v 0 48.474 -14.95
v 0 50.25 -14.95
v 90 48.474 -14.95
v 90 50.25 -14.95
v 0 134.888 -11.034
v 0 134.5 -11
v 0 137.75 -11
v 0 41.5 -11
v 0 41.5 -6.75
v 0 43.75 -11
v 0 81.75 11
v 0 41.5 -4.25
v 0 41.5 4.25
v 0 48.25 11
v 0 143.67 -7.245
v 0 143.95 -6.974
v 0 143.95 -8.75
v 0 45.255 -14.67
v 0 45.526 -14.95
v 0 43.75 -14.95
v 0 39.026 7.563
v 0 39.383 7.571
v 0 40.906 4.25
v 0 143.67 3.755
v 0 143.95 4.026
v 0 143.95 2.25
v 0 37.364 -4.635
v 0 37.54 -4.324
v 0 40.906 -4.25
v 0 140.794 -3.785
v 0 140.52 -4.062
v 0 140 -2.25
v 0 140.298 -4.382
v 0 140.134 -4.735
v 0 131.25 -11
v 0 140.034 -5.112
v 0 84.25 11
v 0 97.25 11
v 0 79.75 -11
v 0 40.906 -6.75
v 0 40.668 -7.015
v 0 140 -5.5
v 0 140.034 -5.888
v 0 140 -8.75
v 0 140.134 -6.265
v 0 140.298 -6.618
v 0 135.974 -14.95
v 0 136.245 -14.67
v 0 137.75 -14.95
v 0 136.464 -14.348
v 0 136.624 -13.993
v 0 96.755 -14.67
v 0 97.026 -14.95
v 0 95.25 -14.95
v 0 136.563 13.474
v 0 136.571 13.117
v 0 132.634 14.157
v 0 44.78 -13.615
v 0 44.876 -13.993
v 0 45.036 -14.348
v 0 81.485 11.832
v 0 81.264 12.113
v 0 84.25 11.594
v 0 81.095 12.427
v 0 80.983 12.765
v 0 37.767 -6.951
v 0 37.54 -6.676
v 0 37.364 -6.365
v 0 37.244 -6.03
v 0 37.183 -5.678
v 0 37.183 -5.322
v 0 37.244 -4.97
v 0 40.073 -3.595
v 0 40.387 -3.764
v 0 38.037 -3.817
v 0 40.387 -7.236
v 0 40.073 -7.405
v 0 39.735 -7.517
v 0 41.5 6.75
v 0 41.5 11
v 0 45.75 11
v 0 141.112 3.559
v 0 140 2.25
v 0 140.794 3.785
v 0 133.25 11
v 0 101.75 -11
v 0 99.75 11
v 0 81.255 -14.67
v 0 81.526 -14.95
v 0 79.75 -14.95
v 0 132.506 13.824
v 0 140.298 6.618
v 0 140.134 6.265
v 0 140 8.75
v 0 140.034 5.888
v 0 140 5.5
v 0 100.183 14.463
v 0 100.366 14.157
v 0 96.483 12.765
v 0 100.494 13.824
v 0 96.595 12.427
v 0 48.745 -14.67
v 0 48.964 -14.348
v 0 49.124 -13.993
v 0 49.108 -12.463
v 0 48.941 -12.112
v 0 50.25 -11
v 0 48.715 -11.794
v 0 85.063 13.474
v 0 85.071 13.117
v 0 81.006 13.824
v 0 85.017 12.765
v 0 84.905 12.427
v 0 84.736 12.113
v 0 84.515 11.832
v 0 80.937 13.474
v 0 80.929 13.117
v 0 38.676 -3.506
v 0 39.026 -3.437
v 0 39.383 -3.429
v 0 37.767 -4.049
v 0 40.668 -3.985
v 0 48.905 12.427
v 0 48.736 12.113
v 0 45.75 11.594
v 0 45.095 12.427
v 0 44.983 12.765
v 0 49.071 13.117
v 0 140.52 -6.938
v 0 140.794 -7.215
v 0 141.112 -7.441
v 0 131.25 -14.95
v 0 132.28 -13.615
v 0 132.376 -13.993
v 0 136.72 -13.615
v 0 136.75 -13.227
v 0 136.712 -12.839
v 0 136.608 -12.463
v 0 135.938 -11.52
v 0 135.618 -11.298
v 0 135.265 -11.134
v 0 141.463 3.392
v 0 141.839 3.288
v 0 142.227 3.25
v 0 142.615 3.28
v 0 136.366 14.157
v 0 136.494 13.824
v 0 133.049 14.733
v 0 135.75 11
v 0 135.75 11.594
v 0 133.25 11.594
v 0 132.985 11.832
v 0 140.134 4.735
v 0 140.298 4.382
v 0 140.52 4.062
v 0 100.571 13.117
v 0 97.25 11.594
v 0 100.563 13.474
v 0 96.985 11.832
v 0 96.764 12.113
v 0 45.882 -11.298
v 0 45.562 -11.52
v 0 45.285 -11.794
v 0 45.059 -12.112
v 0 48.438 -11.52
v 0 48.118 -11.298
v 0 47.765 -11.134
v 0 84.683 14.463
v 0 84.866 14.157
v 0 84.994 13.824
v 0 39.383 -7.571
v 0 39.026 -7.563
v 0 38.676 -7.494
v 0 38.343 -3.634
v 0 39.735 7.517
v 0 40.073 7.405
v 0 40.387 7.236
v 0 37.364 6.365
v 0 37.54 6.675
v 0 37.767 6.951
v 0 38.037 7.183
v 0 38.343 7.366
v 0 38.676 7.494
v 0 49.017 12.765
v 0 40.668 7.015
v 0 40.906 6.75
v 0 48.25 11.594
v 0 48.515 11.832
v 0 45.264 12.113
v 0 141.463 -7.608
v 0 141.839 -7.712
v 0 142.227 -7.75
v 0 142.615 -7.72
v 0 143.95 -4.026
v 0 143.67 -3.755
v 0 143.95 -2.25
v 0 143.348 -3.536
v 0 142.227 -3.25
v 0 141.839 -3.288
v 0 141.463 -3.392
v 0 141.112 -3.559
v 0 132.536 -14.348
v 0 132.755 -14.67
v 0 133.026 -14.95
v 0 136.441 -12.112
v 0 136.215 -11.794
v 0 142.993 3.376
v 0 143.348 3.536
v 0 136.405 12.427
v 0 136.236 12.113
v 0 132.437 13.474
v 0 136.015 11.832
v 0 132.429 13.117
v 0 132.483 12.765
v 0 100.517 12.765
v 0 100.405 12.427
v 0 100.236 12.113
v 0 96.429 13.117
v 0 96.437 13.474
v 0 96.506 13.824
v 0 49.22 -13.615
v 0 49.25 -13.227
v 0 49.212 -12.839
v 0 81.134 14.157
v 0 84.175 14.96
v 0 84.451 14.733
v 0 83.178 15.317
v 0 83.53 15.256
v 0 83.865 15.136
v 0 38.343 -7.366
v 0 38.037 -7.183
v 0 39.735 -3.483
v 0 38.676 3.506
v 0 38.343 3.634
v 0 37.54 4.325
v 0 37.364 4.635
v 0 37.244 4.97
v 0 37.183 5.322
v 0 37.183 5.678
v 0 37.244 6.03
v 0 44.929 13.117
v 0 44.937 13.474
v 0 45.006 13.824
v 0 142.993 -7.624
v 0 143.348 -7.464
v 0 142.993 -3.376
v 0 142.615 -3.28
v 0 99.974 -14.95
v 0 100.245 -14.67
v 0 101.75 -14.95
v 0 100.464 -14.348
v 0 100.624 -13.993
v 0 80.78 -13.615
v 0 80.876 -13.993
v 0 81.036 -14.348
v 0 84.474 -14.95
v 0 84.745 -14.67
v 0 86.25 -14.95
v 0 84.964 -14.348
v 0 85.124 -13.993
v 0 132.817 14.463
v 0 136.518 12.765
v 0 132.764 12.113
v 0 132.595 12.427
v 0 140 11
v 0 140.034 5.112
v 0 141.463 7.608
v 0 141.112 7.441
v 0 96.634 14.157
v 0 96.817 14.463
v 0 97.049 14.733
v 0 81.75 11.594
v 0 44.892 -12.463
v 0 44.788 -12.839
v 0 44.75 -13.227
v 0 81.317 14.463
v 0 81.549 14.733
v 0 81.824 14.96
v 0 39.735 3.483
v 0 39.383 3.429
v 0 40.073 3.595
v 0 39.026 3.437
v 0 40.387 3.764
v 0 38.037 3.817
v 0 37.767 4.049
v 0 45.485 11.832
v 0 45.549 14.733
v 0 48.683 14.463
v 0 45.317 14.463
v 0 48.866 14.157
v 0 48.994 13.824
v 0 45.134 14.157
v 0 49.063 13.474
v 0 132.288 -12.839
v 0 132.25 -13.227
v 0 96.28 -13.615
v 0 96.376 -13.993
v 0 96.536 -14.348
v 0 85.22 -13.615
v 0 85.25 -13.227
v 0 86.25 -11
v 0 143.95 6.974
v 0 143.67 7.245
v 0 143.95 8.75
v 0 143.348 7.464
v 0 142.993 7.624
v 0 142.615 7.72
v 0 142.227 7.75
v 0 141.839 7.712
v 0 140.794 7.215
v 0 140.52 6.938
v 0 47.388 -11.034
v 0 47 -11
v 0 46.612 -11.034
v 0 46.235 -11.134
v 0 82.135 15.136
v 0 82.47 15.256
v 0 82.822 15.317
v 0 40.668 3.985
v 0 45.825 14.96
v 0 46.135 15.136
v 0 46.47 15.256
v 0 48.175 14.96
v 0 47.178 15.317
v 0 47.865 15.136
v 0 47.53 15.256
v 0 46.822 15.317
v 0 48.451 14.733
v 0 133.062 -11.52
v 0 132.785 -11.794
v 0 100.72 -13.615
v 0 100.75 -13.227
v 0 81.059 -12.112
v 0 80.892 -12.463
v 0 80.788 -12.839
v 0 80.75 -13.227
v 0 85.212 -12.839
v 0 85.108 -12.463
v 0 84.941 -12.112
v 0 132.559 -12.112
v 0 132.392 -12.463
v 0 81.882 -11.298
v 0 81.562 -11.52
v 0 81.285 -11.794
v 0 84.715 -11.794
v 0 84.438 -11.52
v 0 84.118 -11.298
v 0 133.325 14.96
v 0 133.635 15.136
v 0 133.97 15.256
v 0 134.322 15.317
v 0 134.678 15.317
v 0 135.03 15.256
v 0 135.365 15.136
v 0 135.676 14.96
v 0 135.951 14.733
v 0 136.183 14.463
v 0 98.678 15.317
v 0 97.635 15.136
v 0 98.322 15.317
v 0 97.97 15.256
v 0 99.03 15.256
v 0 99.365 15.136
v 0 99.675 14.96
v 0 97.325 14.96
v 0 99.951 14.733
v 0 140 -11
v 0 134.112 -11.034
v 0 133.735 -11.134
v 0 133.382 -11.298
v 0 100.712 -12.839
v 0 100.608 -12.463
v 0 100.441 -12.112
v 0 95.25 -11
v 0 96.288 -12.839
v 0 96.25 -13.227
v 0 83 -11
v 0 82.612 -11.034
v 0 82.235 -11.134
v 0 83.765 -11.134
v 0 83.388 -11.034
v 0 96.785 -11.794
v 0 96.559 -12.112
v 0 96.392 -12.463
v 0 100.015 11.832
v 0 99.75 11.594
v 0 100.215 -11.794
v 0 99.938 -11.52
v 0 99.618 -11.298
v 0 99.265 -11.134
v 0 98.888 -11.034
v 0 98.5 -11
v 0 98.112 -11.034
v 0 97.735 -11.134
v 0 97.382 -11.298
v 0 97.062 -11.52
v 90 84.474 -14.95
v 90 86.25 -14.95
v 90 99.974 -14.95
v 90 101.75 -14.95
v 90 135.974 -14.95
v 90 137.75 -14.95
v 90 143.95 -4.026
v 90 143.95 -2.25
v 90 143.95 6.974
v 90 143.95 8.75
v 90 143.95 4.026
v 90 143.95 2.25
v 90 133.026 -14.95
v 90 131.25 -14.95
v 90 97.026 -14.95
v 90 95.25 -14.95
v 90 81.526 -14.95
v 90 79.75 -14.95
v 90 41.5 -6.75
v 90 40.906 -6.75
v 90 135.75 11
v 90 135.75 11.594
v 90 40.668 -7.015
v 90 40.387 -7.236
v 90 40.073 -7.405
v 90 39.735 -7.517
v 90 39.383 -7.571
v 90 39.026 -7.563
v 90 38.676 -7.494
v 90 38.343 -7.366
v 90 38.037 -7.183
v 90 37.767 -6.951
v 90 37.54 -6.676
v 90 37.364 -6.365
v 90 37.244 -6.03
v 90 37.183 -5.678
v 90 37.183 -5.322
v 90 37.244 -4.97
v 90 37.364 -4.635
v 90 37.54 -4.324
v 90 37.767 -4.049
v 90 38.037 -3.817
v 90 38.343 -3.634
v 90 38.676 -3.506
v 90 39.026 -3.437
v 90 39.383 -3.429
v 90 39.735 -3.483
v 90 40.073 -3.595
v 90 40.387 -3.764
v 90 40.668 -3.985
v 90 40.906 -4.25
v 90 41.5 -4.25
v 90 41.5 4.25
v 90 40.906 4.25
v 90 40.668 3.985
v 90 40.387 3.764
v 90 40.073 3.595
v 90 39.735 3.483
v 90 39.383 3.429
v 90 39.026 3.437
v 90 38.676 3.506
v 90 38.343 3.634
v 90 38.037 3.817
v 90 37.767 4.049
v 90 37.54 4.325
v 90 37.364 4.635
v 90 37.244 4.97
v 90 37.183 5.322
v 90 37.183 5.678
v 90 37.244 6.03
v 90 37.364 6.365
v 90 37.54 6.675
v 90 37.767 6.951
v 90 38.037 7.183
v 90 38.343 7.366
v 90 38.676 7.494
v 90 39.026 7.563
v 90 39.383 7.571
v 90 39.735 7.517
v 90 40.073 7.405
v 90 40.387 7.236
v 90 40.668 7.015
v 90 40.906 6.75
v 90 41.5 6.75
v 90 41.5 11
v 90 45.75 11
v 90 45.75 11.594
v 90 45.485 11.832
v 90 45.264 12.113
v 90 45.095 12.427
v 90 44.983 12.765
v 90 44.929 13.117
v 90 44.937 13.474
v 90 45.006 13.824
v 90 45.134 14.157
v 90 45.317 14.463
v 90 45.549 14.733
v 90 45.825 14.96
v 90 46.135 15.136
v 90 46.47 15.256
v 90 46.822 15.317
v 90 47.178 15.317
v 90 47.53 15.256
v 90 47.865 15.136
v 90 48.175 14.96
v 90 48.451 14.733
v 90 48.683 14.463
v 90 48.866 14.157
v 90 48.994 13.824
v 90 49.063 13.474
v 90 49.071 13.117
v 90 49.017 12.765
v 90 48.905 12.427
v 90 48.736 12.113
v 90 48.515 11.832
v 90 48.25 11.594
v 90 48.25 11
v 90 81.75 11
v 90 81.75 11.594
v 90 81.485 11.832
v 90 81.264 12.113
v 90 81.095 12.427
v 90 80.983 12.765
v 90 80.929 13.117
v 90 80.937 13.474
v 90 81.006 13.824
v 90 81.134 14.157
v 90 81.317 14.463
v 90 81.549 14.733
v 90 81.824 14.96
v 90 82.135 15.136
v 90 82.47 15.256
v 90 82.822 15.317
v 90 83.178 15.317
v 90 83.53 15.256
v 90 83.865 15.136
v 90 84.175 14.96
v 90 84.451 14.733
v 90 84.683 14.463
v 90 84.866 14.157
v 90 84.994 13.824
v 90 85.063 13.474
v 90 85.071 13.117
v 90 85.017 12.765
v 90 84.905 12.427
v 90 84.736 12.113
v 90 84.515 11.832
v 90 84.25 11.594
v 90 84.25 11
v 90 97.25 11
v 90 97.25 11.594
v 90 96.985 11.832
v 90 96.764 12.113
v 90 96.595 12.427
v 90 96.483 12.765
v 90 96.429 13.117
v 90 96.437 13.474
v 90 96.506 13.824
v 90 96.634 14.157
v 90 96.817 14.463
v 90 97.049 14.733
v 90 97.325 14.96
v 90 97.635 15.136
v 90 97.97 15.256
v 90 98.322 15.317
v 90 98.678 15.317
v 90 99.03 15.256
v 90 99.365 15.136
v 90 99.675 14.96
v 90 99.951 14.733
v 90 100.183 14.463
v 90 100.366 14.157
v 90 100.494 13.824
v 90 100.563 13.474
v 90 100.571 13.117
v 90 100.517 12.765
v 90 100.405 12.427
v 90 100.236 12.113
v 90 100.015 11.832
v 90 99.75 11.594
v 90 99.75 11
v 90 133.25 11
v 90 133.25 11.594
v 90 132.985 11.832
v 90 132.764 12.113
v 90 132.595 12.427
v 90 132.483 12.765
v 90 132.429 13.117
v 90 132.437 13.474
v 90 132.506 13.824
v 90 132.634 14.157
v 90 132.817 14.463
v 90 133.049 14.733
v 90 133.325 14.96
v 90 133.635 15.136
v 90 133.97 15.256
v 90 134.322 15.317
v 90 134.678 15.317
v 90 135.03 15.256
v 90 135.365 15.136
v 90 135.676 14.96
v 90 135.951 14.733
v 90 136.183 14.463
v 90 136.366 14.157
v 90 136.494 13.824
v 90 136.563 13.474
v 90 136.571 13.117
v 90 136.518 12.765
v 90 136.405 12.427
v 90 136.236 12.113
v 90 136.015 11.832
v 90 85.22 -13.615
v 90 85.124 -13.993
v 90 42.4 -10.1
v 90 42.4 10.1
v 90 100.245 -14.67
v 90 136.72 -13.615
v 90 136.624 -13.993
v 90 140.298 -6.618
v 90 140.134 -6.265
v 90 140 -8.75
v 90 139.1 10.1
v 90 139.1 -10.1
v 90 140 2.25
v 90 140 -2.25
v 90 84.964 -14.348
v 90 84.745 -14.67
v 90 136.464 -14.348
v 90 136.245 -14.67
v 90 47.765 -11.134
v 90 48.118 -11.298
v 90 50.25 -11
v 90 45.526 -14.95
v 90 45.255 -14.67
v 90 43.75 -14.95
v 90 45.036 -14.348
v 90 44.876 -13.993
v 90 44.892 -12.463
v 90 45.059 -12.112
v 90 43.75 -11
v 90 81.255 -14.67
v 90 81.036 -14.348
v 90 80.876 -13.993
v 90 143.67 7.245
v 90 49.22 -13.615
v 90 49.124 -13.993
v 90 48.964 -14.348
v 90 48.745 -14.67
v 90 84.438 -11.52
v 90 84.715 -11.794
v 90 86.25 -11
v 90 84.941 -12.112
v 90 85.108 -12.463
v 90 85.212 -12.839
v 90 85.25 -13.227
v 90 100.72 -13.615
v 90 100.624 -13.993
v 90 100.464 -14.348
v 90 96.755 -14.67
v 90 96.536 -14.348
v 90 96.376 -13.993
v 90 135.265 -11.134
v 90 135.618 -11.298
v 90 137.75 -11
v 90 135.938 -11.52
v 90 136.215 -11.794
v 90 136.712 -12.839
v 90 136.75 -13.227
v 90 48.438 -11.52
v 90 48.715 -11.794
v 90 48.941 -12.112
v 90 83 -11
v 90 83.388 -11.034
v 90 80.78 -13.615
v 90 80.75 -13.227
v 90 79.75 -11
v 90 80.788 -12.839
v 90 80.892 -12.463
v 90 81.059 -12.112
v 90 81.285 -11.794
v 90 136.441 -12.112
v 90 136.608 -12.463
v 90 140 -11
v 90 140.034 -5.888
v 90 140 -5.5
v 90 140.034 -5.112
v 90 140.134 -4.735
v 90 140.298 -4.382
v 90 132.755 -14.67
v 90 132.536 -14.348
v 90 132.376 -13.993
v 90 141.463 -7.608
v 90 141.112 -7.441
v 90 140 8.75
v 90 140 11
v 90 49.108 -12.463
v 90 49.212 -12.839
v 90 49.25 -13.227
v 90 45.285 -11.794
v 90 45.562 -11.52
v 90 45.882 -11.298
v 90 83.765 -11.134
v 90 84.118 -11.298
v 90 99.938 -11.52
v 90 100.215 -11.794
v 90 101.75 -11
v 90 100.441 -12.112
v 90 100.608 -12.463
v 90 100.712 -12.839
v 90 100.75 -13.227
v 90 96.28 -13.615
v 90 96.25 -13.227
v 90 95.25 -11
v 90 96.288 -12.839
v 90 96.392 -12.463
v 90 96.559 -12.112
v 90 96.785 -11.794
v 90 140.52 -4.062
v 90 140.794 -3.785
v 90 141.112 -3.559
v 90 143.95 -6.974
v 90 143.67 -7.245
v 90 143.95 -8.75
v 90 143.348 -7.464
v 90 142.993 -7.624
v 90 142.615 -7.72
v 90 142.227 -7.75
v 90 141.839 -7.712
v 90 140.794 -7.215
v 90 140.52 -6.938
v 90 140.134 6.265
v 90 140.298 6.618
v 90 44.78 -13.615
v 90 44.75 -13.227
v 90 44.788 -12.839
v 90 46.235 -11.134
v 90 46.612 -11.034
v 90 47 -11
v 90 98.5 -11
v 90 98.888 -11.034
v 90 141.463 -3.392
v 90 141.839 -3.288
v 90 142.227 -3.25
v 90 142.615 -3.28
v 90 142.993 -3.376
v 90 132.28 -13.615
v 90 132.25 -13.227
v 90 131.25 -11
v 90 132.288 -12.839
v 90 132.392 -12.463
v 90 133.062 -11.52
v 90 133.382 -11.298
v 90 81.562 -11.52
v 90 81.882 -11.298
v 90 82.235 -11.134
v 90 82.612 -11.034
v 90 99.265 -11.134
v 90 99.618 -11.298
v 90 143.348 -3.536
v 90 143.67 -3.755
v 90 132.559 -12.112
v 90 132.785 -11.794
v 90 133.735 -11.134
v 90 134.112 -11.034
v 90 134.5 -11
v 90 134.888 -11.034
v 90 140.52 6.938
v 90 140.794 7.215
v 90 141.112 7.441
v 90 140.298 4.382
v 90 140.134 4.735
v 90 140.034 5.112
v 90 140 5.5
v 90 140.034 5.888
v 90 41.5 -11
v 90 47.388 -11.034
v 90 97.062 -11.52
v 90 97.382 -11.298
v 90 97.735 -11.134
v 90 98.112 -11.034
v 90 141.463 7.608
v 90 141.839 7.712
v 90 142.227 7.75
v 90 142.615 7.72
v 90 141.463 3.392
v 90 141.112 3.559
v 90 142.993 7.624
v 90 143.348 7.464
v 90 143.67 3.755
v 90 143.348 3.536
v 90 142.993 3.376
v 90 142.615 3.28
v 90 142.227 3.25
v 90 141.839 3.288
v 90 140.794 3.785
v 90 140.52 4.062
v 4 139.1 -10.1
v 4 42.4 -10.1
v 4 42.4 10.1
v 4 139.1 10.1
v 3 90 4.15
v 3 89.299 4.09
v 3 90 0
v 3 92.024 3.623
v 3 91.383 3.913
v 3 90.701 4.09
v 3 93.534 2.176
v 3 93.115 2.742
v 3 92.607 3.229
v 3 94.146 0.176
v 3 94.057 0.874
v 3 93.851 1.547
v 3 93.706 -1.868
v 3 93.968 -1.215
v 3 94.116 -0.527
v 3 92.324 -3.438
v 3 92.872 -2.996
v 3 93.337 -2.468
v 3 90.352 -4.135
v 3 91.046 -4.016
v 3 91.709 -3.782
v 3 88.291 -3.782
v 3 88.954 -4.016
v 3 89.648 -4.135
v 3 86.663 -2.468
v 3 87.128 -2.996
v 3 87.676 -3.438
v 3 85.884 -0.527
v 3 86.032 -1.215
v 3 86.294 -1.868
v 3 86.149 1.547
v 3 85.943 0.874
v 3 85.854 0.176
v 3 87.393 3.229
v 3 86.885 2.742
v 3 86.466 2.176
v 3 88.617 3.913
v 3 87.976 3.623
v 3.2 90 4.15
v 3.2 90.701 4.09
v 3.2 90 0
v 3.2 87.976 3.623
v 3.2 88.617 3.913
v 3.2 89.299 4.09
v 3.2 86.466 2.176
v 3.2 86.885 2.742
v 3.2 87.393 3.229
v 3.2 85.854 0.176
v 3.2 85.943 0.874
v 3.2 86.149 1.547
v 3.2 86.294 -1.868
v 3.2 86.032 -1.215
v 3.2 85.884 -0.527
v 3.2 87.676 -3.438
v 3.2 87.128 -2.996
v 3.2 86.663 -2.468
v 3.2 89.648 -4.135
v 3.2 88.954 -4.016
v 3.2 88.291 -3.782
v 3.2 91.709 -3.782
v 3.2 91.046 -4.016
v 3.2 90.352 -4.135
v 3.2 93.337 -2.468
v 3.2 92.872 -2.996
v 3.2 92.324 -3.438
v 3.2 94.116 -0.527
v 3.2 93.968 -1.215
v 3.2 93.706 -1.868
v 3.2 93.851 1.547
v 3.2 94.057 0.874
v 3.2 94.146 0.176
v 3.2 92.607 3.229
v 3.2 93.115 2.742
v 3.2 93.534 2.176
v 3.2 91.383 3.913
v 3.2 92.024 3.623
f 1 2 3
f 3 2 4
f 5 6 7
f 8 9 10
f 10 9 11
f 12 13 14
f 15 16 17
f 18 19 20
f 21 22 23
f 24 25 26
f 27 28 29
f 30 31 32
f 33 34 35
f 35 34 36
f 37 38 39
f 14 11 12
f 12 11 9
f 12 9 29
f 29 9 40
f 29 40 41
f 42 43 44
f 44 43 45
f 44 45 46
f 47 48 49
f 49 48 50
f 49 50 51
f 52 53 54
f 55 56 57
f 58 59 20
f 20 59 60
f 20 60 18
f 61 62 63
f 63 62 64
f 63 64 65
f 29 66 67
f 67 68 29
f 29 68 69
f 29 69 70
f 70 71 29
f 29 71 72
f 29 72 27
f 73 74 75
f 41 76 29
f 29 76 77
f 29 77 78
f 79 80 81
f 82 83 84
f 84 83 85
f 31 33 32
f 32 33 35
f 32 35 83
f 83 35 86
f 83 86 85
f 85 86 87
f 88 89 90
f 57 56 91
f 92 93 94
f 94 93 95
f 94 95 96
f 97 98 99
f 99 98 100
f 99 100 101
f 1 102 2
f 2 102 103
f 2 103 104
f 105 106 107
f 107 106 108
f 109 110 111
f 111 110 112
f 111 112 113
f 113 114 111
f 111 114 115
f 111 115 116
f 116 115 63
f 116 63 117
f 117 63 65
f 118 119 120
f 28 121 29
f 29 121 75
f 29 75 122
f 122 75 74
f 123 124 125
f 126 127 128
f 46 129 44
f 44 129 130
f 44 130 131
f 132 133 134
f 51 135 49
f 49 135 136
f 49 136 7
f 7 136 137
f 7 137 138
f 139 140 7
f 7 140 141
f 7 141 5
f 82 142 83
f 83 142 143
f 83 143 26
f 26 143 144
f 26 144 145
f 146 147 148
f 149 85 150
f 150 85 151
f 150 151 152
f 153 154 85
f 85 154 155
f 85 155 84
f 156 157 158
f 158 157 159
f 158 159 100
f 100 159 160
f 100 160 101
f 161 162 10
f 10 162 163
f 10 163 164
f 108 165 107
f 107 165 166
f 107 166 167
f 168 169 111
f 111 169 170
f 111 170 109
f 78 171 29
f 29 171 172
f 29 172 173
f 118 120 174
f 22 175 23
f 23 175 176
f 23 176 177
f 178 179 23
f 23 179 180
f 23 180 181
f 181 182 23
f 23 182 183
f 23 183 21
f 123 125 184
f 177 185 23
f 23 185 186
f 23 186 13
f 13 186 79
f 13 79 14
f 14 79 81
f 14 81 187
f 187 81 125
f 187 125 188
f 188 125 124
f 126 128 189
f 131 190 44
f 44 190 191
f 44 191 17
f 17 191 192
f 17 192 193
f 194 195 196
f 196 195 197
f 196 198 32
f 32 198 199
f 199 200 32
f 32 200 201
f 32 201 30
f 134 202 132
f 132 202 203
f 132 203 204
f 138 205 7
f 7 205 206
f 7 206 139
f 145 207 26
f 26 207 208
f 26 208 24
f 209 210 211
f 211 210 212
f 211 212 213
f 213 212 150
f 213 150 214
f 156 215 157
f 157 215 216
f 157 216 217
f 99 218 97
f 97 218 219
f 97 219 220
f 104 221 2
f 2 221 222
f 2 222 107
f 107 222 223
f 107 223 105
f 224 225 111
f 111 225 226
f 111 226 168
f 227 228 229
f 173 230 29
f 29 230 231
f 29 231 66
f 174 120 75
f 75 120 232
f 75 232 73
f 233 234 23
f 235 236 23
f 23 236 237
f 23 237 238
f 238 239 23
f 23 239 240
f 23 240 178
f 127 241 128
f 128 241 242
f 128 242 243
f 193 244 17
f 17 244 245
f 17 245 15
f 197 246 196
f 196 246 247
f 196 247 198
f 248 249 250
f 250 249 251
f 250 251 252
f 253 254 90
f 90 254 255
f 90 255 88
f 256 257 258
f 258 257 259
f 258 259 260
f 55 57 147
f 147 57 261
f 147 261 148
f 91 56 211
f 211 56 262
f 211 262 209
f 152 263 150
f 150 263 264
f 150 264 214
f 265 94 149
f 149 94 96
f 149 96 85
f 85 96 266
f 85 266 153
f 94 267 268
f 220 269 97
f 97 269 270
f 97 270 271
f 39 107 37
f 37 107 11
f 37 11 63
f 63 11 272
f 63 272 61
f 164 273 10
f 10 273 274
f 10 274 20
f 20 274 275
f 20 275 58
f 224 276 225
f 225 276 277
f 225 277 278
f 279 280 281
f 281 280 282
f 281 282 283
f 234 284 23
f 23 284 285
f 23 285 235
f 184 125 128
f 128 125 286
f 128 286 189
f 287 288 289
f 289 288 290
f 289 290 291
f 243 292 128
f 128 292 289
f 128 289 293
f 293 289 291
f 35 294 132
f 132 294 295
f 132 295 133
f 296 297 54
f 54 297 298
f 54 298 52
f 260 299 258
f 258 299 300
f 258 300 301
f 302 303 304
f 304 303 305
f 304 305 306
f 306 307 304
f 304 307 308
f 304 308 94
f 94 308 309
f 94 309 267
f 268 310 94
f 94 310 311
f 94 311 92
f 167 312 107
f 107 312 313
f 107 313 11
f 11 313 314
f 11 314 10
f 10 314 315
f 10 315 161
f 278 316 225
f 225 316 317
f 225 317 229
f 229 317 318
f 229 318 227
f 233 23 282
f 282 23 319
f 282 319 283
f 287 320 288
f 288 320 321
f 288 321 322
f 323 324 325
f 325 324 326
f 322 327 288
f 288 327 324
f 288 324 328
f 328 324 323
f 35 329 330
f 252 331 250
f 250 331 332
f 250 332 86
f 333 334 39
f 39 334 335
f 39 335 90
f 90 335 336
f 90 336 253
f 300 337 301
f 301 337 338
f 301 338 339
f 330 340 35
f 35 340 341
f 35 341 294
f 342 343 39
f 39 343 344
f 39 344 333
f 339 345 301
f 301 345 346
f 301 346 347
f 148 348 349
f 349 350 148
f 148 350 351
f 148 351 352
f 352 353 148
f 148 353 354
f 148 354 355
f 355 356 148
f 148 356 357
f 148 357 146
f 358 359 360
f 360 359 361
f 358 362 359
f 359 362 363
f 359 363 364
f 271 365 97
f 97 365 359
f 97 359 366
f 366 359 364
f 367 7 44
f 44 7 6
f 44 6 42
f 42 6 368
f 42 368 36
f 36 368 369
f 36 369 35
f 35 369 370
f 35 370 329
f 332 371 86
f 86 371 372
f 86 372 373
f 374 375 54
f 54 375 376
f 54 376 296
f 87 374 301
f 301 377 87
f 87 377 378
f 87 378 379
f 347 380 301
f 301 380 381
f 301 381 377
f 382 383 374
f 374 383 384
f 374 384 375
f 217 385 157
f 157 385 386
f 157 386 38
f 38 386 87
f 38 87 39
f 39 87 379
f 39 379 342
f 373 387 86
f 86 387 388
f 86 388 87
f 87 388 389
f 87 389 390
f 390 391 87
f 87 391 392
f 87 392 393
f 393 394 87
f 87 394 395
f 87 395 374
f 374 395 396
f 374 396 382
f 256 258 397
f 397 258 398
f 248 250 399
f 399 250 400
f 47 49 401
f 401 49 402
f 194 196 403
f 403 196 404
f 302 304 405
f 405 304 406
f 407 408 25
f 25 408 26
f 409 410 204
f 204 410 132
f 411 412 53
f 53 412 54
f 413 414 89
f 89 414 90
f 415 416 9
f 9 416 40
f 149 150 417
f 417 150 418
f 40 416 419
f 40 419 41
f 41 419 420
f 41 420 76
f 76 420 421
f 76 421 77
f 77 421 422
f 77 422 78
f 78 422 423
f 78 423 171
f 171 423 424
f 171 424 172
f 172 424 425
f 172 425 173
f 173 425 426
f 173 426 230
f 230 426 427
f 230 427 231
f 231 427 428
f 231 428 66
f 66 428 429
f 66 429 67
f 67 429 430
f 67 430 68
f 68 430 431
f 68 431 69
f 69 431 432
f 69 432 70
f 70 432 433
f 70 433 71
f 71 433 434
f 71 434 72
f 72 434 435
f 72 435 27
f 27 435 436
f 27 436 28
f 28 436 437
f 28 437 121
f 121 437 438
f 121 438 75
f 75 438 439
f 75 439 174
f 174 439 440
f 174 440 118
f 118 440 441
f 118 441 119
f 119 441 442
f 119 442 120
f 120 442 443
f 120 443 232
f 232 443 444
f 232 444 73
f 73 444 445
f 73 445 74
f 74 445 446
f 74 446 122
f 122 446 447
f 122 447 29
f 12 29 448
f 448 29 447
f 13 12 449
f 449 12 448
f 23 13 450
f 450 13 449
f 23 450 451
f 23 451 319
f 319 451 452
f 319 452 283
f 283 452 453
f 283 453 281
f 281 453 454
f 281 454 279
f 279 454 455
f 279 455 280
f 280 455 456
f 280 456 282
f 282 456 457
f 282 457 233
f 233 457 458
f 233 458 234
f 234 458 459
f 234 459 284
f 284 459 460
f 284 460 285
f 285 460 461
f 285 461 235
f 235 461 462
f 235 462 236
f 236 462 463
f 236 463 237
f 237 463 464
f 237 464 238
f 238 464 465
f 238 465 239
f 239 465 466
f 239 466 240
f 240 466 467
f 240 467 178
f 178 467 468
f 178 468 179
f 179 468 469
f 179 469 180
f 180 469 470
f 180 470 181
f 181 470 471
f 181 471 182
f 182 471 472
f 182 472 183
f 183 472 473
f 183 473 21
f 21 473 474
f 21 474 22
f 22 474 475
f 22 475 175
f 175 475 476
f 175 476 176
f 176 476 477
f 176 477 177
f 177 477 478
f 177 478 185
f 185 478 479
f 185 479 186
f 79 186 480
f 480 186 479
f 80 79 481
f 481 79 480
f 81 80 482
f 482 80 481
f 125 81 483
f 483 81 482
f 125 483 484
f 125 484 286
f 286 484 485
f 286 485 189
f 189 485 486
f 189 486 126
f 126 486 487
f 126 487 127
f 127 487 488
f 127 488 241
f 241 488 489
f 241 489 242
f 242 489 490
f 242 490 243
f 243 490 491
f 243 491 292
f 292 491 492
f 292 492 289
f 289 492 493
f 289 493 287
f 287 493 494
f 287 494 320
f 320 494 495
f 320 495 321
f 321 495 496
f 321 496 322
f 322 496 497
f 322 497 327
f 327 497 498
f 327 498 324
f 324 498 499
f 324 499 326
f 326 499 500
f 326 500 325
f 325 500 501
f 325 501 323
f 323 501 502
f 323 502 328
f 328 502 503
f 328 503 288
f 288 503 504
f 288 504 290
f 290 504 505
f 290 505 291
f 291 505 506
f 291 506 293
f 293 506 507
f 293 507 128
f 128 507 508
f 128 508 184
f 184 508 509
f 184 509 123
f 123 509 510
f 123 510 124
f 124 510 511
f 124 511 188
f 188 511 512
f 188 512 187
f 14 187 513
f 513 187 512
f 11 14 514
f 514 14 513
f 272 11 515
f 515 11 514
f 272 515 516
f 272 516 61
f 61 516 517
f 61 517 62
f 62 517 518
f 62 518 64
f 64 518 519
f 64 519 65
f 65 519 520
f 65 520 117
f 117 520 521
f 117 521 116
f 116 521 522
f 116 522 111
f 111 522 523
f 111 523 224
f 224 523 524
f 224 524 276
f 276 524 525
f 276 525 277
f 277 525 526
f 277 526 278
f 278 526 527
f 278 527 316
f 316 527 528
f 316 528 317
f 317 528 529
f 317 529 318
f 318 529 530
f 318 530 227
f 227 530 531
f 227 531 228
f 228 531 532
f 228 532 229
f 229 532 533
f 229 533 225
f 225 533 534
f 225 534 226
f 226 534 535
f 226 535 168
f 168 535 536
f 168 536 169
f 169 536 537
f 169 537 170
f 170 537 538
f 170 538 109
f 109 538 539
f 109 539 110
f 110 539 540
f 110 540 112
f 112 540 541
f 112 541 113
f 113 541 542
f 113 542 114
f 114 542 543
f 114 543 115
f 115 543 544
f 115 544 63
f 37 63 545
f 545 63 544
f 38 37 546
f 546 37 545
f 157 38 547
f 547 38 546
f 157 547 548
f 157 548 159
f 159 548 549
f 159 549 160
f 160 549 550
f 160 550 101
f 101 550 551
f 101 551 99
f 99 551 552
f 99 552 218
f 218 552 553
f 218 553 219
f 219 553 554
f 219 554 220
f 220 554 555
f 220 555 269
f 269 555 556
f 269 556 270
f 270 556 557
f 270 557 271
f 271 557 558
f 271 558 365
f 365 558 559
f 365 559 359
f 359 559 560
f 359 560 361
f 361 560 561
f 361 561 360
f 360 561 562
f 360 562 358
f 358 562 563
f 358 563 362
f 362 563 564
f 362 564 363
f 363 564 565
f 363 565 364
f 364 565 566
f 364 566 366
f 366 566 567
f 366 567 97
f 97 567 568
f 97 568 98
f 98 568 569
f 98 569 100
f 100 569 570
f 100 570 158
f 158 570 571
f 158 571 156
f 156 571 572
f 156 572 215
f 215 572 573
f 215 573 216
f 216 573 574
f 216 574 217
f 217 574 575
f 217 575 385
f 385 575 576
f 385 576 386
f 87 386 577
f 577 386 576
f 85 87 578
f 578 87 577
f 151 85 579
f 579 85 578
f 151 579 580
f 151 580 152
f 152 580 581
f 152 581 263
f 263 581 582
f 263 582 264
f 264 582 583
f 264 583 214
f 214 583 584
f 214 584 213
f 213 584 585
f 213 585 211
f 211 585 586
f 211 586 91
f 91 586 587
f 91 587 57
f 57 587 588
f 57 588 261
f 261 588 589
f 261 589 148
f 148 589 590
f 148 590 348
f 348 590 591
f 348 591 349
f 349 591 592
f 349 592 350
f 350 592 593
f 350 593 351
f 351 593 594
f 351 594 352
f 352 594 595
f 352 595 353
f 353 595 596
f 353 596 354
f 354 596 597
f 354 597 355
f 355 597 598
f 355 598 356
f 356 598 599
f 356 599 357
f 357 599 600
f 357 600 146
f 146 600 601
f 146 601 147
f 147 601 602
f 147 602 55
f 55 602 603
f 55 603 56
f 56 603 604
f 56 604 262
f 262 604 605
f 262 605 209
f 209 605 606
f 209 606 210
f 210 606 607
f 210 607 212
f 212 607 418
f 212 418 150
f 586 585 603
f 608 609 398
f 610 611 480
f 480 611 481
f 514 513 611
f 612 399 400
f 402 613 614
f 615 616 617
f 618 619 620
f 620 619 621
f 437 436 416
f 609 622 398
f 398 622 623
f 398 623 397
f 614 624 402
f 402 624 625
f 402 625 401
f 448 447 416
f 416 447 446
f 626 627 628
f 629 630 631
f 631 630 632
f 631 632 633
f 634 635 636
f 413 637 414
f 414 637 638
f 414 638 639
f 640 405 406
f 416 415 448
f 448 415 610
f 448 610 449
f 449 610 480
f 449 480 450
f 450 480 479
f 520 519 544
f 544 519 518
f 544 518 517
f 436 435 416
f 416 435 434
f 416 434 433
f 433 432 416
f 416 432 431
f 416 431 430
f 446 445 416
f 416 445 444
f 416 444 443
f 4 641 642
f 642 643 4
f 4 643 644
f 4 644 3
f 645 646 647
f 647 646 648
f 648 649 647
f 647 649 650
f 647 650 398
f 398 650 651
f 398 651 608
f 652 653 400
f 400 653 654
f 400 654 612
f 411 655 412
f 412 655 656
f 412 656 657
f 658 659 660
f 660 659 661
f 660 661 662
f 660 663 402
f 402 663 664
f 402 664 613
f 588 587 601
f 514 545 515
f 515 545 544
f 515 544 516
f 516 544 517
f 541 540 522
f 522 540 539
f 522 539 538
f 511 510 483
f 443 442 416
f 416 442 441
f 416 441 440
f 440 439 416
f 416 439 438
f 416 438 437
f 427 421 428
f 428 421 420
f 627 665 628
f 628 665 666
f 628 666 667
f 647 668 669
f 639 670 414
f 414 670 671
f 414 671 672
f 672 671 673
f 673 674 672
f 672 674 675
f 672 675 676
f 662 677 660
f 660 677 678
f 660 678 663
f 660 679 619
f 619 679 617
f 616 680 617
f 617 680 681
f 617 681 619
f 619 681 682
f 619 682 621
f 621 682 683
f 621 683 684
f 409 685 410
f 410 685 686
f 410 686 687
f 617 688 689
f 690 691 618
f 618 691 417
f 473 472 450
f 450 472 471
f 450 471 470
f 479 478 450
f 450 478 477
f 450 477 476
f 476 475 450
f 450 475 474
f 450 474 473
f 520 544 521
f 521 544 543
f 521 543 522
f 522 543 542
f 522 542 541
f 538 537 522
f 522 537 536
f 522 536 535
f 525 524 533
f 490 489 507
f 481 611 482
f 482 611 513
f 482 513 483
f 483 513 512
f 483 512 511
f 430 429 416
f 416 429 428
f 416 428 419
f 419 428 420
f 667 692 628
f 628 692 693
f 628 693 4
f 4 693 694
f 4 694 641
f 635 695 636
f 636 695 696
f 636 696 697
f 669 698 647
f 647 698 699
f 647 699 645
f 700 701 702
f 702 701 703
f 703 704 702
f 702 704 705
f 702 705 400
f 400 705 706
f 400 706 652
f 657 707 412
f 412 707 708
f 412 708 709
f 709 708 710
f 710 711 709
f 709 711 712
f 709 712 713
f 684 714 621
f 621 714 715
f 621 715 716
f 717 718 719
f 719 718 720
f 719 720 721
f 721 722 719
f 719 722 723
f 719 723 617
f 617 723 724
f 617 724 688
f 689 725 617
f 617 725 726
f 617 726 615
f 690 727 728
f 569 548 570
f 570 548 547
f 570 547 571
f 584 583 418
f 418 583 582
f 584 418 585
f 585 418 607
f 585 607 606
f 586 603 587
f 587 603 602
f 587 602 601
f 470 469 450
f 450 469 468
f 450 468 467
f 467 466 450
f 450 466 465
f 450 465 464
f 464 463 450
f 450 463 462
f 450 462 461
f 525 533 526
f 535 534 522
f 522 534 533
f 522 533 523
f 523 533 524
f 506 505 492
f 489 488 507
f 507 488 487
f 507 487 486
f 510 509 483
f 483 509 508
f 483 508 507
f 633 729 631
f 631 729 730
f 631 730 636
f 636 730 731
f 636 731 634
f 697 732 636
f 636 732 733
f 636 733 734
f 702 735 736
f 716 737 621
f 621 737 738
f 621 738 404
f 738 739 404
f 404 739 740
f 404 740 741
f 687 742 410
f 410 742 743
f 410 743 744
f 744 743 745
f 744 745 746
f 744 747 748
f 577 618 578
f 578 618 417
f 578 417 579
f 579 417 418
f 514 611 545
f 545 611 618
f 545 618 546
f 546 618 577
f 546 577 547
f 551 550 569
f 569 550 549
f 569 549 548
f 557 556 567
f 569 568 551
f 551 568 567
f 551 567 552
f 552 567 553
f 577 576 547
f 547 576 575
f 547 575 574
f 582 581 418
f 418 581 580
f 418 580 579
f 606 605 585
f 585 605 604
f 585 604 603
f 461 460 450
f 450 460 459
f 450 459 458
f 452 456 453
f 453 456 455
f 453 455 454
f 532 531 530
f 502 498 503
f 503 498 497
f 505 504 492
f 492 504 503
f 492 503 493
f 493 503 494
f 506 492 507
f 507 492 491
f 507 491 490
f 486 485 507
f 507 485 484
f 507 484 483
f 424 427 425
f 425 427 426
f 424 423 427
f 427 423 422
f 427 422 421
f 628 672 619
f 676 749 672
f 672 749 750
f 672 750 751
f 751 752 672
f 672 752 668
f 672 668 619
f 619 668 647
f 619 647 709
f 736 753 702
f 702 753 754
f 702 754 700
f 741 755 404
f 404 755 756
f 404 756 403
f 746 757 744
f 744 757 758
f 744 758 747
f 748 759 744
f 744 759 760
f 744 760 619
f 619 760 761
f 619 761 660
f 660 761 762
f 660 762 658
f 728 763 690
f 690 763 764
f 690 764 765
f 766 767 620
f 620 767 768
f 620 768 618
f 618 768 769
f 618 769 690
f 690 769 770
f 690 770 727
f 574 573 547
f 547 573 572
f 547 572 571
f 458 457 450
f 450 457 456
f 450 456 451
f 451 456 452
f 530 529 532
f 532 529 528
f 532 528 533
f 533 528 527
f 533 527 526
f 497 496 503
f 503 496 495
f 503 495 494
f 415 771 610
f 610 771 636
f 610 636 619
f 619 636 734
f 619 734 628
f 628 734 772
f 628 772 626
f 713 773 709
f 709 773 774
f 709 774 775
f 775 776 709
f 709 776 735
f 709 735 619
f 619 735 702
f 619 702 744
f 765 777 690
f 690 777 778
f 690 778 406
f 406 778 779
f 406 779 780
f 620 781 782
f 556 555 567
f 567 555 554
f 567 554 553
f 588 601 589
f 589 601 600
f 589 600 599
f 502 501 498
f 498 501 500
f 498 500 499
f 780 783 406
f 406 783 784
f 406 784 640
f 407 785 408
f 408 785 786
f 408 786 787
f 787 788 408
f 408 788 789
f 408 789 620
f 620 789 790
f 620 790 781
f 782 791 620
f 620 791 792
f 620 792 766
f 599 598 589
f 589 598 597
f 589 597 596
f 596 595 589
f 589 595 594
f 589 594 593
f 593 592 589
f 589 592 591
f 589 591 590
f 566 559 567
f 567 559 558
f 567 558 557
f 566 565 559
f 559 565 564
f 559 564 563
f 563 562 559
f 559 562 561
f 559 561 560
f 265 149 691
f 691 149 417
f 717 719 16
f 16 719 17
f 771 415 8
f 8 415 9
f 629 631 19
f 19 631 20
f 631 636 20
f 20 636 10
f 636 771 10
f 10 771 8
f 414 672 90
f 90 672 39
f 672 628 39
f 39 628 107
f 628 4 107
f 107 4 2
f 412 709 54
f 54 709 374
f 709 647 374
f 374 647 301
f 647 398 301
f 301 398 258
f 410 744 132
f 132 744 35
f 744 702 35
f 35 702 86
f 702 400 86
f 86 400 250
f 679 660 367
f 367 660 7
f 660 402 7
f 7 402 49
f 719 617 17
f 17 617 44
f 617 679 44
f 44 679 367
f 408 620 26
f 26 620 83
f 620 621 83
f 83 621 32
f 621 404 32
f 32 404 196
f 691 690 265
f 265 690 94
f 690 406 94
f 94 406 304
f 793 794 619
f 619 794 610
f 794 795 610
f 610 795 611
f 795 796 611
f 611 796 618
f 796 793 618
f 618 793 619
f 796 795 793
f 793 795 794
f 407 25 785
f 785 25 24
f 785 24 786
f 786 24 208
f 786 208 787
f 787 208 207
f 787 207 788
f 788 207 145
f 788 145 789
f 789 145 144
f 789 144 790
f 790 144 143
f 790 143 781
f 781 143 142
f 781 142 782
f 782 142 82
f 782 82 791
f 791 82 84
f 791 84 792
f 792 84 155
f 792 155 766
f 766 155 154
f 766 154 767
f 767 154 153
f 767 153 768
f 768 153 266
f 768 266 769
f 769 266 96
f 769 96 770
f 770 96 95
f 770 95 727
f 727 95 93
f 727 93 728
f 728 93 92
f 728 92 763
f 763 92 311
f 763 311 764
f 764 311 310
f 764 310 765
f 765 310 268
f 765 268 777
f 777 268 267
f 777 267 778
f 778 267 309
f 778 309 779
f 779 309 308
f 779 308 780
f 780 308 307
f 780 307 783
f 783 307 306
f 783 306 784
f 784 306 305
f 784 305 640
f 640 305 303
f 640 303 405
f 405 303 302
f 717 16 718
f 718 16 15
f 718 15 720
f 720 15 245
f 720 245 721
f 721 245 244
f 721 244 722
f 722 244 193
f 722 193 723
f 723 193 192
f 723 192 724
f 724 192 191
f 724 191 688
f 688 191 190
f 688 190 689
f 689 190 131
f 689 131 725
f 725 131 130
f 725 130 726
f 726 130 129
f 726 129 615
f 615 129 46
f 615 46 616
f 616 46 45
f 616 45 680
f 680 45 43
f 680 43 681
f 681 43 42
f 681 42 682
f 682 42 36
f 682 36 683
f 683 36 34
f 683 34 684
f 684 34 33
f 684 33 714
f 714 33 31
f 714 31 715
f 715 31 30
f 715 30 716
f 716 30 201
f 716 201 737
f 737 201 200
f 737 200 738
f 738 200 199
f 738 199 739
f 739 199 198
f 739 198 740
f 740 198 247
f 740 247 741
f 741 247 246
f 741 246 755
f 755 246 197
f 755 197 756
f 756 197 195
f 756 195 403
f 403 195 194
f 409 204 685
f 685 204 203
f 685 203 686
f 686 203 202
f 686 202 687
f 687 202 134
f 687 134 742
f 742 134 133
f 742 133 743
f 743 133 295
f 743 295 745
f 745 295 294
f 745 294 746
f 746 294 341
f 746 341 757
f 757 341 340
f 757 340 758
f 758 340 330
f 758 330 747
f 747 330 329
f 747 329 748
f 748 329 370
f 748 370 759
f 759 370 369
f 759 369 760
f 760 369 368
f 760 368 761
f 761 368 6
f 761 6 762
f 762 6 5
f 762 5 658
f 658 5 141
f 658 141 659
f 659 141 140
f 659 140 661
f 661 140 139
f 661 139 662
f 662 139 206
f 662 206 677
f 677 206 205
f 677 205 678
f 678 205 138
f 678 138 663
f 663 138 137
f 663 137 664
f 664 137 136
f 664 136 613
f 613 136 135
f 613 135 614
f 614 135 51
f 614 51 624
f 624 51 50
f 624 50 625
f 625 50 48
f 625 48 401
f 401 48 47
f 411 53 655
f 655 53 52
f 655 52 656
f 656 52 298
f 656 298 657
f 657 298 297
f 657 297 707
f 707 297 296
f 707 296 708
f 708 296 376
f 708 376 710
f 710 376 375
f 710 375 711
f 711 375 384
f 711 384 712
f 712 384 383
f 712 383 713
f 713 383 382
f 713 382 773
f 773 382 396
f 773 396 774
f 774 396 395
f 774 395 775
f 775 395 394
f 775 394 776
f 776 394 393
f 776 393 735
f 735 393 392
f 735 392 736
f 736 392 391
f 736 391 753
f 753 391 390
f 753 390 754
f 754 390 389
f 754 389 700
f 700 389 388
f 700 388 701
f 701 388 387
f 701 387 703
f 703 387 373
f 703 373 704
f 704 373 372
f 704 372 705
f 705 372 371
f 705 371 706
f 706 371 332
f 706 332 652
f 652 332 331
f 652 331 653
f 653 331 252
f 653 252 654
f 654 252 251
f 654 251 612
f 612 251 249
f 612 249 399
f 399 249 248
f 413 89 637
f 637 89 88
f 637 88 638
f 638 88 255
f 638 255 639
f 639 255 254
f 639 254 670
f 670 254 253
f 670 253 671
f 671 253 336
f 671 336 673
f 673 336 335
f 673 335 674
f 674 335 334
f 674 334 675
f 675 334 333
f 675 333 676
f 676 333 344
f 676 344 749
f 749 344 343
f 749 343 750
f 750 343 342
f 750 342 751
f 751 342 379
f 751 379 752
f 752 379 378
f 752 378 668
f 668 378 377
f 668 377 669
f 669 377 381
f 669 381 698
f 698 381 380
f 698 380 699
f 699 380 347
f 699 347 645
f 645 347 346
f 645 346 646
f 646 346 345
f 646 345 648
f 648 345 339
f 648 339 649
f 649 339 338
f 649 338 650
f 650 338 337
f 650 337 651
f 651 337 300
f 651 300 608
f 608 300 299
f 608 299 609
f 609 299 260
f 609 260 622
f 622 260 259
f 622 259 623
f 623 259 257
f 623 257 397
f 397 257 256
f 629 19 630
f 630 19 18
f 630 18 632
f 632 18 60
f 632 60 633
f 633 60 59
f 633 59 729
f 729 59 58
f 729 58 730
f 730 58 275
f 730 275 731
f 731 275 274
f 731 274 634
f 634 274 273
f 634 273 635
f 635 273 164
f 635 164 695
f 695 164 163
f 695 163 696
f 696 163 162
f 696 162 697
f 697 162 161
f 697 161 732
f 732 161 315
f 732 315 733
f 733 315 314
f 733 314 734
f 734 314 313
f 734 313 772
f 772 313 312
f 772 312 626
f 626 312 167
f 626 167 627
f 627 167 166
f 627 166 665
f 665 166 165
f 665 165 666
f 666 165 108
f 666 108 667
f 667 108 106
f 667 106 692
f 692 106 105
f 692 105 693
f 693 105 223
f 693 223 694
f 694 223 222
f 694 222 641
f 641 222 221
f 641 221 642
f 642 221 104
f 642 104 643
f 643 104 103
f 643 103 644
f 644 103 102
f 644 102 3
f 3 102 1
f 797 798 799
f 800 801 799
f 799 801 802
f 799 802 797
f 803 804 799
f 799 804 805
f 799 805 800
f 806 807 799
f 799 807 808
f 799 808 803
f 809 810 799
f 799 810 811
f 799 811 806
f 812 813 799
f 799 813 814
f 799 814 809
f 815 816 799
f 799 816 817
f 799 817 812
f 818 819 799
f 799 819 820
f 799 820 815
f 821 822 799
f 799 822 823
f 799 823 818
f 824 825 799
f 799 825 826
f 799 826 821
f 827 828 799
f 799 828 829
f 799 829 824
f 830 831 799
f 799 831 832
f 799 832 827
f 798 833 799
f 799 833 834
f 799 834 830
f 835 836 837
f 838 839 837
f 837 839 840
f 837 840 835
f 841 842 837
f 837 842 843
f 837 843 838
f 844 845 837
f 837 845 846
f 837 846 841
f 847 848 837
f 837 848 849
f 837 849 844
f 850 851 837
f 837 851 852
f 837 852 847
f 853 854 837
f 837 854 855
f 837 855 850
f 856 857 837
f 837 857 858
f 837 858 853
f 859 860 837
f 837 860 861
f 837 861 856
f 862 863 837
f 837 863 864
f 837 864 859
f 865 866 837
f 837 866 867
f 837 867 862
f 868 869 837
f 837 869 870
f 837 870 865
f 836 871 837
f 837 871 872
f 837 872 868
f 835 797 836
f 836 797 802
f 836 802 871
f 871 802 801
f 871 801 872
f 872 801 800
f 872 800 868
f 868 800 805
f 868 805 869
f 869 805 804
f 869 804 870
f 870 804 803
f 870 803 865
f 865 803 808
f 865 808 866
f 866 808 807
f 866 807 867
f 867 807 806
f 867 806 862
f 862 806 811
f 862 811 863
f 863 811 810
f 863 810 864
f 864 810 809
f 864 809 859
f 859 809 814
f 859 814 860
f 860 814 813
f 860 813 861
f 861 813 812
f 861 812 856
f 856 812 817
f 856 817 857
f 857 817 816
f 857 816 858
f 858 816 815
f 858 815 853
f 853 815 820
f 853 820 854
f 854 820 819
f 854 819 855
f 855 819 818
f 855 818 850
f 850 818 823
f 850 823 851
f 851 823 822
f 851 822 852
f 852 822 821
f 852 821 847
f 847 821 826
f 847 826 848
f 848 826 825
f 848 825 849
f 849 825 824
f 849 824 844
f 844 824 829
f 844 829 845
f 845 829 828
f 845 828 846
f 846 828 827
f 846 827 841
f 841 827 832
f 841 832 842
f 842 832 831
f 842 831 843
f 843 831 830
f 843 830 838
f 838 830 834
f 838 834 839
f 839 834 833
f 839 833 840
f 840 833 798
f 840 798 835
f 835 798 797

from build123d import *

# Parameters (mm, degrees)
EXTRUDE_1_DEPTH             = 90
SKETCH_2_W                  = 90
SKETCH_2_H                  = 17.75
EXTRUDE_2_DEPTH             = 8.2
SKETCH_3_W                  = 90
SKETCH_3_H                  = 102.45
EXTRUDE_3_DEPTH             = 8.2
SKETCH_4_W                  = 3.95
SKETCH_4_H                  = 2.25
CUT_EXTRUDE_1_DEPTH         = 171.45954982
SKETCH_5_W                  = 3.95
SKETCH_5_H                  = 29.5
CUT_EXTRUDE_2_DEPTH         = 171.45954982
SKETCH_6_W                  = 3.95
SKETCH_6_H                  = 9
CUT_EXTRUDE_3_DEPTH         = 171.45954982
SKETCH_7_W                  = 3.95
SKETCH_7_H                  = 29.5
CUT_EXTRUDE_4_DEPTH         = 171.45954982
SKETCH_8_W                  = 3.95
SKETCH_8_H                  = 6.2
CUT_EXTRUDE_5_DEPTH         = 171.45954982
SKETCH_9_W                  = 2.25
SKETCH_9_H                  = 3.95
CUT_EXTRUDE_6_DEPTH         = 171.45954982
SKETCH_10_W                 = 4.5
SKETCH_10_H                 = 3.95
CUT_EXTRUDE_7_DEPTH         = 171.45954982
SKETCH_11_W                 = 2.25
SKETCH_11_H                 = 3.95
CUT_EXTRUDE_8_DEPTH         = 171.45954982
SKETCH_12_W                 = 20.2
SKETCH_12_H                 = 96.7
CUT_EXTRUDE_9_DEPTH         = 86
HOLE_WIZARD_8_3_8_3_1_D     = 8.3
HOLE_WIZARD_8_3_8_3_1_DEPTH = 3.2
HOLE_WIZARD_4_5_4_5_1_D     = 4.5
HOLE_WIZARD_2_5_2_5_1_D     = 2.5
SKETCH_19_R                 = 4.5030807
EXTRUDE_4_DEPTH             = 3
SKETCH_20_R                 = 1.649948342
SKETCH_20_R_2               = 1.660581376
SKETCH_20_R_3               = 1.430745594
SKETCH_20_R_4               = 1.573250385
SKETCH_20_R_5               = 1.502029841
SKETCH_20_R_6               = 1.53795619
EXTRUDE_5_DEPTH             = 90


with BuildPart() as part:
    # Эскиз1 → Бобышка-Вытянуть1 (new body)
    with BuildSketch(Plane(origin=(90, 0, 0), x_dir=(0, 0, -1), z_dir=(1, 0, 0))):
        with BuildLine():
            Line((6.75, 40.906238208), (6.75, 135.75))
            Line((6.75, 135.75), (-11.593761792, 135.75))
            ThreePointArc((-11.593761792, 135.75), (-15.325, 134.5), (-11.593761793, 133.25))
            Line((-11.593761793, 133.25), (-11, 133.25))
            Line((-11, 133.25), (-11, 99.75))
            Line((-11, 99.75), (-11.593761792, 99.75))
            ThreePointArc((-11.593761792, 99.75), (-15.325, 98.5), (-11.593761792, 97.25))
            Line((-11.593761792, 97.25), (-11, 97.25))
            Line((-11, 97.25), (-11, 84.25))
            Line((-11, 84.25), (-11.593761792, 84.25))
            ThreePointArc((-11.593761792, 84.25), (-15.325, 83), (-11.593761792, 81.75))
            Line((-11.593761792, 81.75), (-11, 81.75))
            Line((-11, 81.75), (-11, 48.25))
            Line((-11, 48.25), (-11.593761792, 48.25))
            ThreePointArc((-11.593761792, 48.25), (-15.325, 47), (-11.593761792, 45.75))
            Line((-11.593761792, 45.75), (-11, 45.75))
            Line((-11, 45.75), (-11, 41.5))
            Line((-11, 41.5), (-6.75, 41.5))
            Line((-6.75, 41.5), (-6.75, 40.906238208))
            ThreePointArc((-6.75, 40.906238208), (-5.5, 37.175), (-4.25, 40.906238208))
            Line((-4.25, 40.906238208), (-4.25, 41.5))
            Line((-4.25, 41.5), (4.25, 41.5))
            Line((4.25, 41.5), (4.25, 40.906238208))
            ThreePointArc((4.25, 40.906238208), (5.5, 37.175), (6.75, 40.906238208))
        make_face()
    extrude(amount=-EXTRUDE_1_DEPTH)

    # Эскиз2 → Бобышка-Вытянуть2 (add)
    with BuildSketch(Plane(origin=(0, 135.75, 0), x_dir=(-1, 0, 0), z_dir=(0, 1, 0))):
        with Locations((-45, 2.125)):
            Rectangle(SKETCH_2_W, SKETCH_2_H)
    extrude(amount=EXTRUDE_2_DEPTH)

    # Эскиз3 → Бобышка-Вытянуть3 (add)
    with BuildSketch(Plane(origin=(0, 0, -6.75), x_dir=(-1, 0, 0), z_dir=(0, 0, -1))):
        with Locations((-45, 92.725)):
            Rectangle(SKETCH_3_W, SKETCH_3_H)
    extrude(amount=EXTRUDE_3_DEPTH)

    # Эскиз4 → Вырез-Вытянуть1 (cut, through all)
    with BuildSketch(Plane.ZY):
        with Locations((-12.975, 42.625)):
            Rectangle(SKETCH_4_W, SKETCH_4_H)
    extrude(amount=-CUT_EXTRUDE_1_DEPTH, mode=Mode.SUBTRACT)

    # Эскиз5 → Вырез-Вытянуть2 (cut, through all)
    with BuildSketch(Plane.ZY):
        with Locations((-12.975, 65)):
            Rectangle(SKETCH_5_W, SKETCH_5_H)
    extrude(amount=-CUT_EXTRUDE_2_DEPTH, mode=Mode.SUBTRACT)

    # Эскиз6 → Вырез-Вытянуть3 (cut, through all)
    with BuildSketch(Plane.ZY):
        with Locations((-12.975, 90.75)):
            Rectangle(SKETCH_6_W, SKETCH_6_H)
    extrude(amount=-CUT_EXTRUDE_3_DEPTH, mode=Mode.SUBTRACT)

    # Эскиз7 → Вырез-Вытянуть4 (cut, through all)
    with BuildSketch(Plane.ZY):
        with Locations((-12.975, 116.5)):
            Rectangle(SKETCH_7_W, SKETCH_7_H)
    extrude(amount=-CUT_EXTRUDE_4_DEPTH, mode=Mode.SUBTRACT)

    # Эскиз8 → Вырез-Вытянуть5 (cut, through all)
    with BuildSketch(Plane.ZY):
        with Locations((-12.975, 140.85)):
            Rectangle(SKETCH_8_W, SKETCH_8_H)
    extrude(amount=-CUT_EXTRUDE_5_DEPTH, mode=Mode.SUBTRACT)

    # Эскиз9 → Вырез-Вытянуть6 (cut, through all)
    with BuildSketch(Plane.ZY):
        with Locations((-9.875, 141.975)):
            Rectangle(SKETCH_9_W, SKETCH_9_H)
    extrude(amount=-CUT_EXTRUDE_6_DEPTH, mode=Mode.SUBTRACT)

    # Эскиз10 → Вырез-Вытянуть7 (cut, through all)
    with BuildSketch(Plane.ZY):
        with Locations((0, 141.975)):
            Rectangle(SKETCH_10_W, SKETCH_10_H)
    extrude(amount=-CUT_EXTRUDE_7_DEPTH, mode=Mode.SUBTRACT)

    # Эскиз11 → Вырез-Вытянуть8 (cut, through all)
    with BuildSketch(Plane.ZY):
        with Locations((9.875, 141.975)):
            Rectangle(SKETCH_11_W, SKETCH_11_H)
    extrude(amount=-CUT_EXTRUDE_8_DEPTH, mode=Mode.SUBTRACT)

    # Эскиз12 → Вырез-Вытянуть9 (cut)
    with BuildSketch(Plane(origin=(90, 0, 0), x_dir=(0, 0, -1), z_dir=(1, 0, 0))):
        with Locations((0, 90.75)):
            Rectangle(SKETCH_12_W, SKETCH_12_H)
    extrude(amount=-CUT_EXTRUDE_9_DEPTH, mode=Mode.SUBTRACT)

    # Диаметр отверстия Ø8.3 (8.3)1
    with Locations(Plane.ZY):
        with Locations((0, 90)):
            Hole(HOLE_WIZARD_8_3_8_3_1_D / 2, depth=HOLE_WIZARD_8_3_8_3_1_DEPTH)

    # Диаметр отверстия Ø4.5 (4.5)1 (through all)
    with Locations(Plane.ZY):
        with Locations((-13.25, 47), (-13.25, 83), (-13.25, 98.5), (-13.25, 134.5), (-5.5, 142.25), (5.5, 142.25)):
            Hole(HOLE_WIZARD_4_5_4_5_1_D / 2)

    # Диаметр отверстия Ø2.5 (2.5)1 (through all)
    with Locations(Plane(origin=(90, 0, 0), x_dir=(0, 0, -1), z_dir=(1, 0, 0))):
        with Locations((-13.25, 98.5), (-13.25, 134.5), (-13.25, 47), (-13.25, 83), (5.5, 39.25), (-5.5, 39.25)):
            Hole(HOLE_WIZARD_2_5_2_5_1_D / 2)

    # Эскиз19 → Бобышка-Вытянуть4 (add)
    with BuildSketch(Plane.ZY):
        with Locations((0, 90)):
            Circle(SKETCH_19_R)
    extrude(amount=-EXTRUDE_4_DEPTH)

    # Эскиз20 → Бобышка-Вытянуть5 (add)
    with BuildSketch(Plane(origin=(90, 0, 0), x_dir=(0, 0, -1), z_dir=(1, 0, 0))):
        with Locations((-13.25, 134.5)):
            Circle(SKETCH_20_R)
        with Locations((-13.25, 98.5)):
            Circle(SKETCH_20_R_2)
        with Locations((-13.25, 83)):
            Circle(SKETCH_20_R_3)
        with Locations((-13.25, 47)):
            Circle(SKETCH_20_R_4)
        with Locations((-5.5, 39.25)):
            Circle(SKETCH_20_R_5)
        with Locations((5.5, 39.25)):
            Circle(SKETCH_20_R_6)
    extrude(amount=-EXTRUDE_5_DEPTH)


solid = part.part
